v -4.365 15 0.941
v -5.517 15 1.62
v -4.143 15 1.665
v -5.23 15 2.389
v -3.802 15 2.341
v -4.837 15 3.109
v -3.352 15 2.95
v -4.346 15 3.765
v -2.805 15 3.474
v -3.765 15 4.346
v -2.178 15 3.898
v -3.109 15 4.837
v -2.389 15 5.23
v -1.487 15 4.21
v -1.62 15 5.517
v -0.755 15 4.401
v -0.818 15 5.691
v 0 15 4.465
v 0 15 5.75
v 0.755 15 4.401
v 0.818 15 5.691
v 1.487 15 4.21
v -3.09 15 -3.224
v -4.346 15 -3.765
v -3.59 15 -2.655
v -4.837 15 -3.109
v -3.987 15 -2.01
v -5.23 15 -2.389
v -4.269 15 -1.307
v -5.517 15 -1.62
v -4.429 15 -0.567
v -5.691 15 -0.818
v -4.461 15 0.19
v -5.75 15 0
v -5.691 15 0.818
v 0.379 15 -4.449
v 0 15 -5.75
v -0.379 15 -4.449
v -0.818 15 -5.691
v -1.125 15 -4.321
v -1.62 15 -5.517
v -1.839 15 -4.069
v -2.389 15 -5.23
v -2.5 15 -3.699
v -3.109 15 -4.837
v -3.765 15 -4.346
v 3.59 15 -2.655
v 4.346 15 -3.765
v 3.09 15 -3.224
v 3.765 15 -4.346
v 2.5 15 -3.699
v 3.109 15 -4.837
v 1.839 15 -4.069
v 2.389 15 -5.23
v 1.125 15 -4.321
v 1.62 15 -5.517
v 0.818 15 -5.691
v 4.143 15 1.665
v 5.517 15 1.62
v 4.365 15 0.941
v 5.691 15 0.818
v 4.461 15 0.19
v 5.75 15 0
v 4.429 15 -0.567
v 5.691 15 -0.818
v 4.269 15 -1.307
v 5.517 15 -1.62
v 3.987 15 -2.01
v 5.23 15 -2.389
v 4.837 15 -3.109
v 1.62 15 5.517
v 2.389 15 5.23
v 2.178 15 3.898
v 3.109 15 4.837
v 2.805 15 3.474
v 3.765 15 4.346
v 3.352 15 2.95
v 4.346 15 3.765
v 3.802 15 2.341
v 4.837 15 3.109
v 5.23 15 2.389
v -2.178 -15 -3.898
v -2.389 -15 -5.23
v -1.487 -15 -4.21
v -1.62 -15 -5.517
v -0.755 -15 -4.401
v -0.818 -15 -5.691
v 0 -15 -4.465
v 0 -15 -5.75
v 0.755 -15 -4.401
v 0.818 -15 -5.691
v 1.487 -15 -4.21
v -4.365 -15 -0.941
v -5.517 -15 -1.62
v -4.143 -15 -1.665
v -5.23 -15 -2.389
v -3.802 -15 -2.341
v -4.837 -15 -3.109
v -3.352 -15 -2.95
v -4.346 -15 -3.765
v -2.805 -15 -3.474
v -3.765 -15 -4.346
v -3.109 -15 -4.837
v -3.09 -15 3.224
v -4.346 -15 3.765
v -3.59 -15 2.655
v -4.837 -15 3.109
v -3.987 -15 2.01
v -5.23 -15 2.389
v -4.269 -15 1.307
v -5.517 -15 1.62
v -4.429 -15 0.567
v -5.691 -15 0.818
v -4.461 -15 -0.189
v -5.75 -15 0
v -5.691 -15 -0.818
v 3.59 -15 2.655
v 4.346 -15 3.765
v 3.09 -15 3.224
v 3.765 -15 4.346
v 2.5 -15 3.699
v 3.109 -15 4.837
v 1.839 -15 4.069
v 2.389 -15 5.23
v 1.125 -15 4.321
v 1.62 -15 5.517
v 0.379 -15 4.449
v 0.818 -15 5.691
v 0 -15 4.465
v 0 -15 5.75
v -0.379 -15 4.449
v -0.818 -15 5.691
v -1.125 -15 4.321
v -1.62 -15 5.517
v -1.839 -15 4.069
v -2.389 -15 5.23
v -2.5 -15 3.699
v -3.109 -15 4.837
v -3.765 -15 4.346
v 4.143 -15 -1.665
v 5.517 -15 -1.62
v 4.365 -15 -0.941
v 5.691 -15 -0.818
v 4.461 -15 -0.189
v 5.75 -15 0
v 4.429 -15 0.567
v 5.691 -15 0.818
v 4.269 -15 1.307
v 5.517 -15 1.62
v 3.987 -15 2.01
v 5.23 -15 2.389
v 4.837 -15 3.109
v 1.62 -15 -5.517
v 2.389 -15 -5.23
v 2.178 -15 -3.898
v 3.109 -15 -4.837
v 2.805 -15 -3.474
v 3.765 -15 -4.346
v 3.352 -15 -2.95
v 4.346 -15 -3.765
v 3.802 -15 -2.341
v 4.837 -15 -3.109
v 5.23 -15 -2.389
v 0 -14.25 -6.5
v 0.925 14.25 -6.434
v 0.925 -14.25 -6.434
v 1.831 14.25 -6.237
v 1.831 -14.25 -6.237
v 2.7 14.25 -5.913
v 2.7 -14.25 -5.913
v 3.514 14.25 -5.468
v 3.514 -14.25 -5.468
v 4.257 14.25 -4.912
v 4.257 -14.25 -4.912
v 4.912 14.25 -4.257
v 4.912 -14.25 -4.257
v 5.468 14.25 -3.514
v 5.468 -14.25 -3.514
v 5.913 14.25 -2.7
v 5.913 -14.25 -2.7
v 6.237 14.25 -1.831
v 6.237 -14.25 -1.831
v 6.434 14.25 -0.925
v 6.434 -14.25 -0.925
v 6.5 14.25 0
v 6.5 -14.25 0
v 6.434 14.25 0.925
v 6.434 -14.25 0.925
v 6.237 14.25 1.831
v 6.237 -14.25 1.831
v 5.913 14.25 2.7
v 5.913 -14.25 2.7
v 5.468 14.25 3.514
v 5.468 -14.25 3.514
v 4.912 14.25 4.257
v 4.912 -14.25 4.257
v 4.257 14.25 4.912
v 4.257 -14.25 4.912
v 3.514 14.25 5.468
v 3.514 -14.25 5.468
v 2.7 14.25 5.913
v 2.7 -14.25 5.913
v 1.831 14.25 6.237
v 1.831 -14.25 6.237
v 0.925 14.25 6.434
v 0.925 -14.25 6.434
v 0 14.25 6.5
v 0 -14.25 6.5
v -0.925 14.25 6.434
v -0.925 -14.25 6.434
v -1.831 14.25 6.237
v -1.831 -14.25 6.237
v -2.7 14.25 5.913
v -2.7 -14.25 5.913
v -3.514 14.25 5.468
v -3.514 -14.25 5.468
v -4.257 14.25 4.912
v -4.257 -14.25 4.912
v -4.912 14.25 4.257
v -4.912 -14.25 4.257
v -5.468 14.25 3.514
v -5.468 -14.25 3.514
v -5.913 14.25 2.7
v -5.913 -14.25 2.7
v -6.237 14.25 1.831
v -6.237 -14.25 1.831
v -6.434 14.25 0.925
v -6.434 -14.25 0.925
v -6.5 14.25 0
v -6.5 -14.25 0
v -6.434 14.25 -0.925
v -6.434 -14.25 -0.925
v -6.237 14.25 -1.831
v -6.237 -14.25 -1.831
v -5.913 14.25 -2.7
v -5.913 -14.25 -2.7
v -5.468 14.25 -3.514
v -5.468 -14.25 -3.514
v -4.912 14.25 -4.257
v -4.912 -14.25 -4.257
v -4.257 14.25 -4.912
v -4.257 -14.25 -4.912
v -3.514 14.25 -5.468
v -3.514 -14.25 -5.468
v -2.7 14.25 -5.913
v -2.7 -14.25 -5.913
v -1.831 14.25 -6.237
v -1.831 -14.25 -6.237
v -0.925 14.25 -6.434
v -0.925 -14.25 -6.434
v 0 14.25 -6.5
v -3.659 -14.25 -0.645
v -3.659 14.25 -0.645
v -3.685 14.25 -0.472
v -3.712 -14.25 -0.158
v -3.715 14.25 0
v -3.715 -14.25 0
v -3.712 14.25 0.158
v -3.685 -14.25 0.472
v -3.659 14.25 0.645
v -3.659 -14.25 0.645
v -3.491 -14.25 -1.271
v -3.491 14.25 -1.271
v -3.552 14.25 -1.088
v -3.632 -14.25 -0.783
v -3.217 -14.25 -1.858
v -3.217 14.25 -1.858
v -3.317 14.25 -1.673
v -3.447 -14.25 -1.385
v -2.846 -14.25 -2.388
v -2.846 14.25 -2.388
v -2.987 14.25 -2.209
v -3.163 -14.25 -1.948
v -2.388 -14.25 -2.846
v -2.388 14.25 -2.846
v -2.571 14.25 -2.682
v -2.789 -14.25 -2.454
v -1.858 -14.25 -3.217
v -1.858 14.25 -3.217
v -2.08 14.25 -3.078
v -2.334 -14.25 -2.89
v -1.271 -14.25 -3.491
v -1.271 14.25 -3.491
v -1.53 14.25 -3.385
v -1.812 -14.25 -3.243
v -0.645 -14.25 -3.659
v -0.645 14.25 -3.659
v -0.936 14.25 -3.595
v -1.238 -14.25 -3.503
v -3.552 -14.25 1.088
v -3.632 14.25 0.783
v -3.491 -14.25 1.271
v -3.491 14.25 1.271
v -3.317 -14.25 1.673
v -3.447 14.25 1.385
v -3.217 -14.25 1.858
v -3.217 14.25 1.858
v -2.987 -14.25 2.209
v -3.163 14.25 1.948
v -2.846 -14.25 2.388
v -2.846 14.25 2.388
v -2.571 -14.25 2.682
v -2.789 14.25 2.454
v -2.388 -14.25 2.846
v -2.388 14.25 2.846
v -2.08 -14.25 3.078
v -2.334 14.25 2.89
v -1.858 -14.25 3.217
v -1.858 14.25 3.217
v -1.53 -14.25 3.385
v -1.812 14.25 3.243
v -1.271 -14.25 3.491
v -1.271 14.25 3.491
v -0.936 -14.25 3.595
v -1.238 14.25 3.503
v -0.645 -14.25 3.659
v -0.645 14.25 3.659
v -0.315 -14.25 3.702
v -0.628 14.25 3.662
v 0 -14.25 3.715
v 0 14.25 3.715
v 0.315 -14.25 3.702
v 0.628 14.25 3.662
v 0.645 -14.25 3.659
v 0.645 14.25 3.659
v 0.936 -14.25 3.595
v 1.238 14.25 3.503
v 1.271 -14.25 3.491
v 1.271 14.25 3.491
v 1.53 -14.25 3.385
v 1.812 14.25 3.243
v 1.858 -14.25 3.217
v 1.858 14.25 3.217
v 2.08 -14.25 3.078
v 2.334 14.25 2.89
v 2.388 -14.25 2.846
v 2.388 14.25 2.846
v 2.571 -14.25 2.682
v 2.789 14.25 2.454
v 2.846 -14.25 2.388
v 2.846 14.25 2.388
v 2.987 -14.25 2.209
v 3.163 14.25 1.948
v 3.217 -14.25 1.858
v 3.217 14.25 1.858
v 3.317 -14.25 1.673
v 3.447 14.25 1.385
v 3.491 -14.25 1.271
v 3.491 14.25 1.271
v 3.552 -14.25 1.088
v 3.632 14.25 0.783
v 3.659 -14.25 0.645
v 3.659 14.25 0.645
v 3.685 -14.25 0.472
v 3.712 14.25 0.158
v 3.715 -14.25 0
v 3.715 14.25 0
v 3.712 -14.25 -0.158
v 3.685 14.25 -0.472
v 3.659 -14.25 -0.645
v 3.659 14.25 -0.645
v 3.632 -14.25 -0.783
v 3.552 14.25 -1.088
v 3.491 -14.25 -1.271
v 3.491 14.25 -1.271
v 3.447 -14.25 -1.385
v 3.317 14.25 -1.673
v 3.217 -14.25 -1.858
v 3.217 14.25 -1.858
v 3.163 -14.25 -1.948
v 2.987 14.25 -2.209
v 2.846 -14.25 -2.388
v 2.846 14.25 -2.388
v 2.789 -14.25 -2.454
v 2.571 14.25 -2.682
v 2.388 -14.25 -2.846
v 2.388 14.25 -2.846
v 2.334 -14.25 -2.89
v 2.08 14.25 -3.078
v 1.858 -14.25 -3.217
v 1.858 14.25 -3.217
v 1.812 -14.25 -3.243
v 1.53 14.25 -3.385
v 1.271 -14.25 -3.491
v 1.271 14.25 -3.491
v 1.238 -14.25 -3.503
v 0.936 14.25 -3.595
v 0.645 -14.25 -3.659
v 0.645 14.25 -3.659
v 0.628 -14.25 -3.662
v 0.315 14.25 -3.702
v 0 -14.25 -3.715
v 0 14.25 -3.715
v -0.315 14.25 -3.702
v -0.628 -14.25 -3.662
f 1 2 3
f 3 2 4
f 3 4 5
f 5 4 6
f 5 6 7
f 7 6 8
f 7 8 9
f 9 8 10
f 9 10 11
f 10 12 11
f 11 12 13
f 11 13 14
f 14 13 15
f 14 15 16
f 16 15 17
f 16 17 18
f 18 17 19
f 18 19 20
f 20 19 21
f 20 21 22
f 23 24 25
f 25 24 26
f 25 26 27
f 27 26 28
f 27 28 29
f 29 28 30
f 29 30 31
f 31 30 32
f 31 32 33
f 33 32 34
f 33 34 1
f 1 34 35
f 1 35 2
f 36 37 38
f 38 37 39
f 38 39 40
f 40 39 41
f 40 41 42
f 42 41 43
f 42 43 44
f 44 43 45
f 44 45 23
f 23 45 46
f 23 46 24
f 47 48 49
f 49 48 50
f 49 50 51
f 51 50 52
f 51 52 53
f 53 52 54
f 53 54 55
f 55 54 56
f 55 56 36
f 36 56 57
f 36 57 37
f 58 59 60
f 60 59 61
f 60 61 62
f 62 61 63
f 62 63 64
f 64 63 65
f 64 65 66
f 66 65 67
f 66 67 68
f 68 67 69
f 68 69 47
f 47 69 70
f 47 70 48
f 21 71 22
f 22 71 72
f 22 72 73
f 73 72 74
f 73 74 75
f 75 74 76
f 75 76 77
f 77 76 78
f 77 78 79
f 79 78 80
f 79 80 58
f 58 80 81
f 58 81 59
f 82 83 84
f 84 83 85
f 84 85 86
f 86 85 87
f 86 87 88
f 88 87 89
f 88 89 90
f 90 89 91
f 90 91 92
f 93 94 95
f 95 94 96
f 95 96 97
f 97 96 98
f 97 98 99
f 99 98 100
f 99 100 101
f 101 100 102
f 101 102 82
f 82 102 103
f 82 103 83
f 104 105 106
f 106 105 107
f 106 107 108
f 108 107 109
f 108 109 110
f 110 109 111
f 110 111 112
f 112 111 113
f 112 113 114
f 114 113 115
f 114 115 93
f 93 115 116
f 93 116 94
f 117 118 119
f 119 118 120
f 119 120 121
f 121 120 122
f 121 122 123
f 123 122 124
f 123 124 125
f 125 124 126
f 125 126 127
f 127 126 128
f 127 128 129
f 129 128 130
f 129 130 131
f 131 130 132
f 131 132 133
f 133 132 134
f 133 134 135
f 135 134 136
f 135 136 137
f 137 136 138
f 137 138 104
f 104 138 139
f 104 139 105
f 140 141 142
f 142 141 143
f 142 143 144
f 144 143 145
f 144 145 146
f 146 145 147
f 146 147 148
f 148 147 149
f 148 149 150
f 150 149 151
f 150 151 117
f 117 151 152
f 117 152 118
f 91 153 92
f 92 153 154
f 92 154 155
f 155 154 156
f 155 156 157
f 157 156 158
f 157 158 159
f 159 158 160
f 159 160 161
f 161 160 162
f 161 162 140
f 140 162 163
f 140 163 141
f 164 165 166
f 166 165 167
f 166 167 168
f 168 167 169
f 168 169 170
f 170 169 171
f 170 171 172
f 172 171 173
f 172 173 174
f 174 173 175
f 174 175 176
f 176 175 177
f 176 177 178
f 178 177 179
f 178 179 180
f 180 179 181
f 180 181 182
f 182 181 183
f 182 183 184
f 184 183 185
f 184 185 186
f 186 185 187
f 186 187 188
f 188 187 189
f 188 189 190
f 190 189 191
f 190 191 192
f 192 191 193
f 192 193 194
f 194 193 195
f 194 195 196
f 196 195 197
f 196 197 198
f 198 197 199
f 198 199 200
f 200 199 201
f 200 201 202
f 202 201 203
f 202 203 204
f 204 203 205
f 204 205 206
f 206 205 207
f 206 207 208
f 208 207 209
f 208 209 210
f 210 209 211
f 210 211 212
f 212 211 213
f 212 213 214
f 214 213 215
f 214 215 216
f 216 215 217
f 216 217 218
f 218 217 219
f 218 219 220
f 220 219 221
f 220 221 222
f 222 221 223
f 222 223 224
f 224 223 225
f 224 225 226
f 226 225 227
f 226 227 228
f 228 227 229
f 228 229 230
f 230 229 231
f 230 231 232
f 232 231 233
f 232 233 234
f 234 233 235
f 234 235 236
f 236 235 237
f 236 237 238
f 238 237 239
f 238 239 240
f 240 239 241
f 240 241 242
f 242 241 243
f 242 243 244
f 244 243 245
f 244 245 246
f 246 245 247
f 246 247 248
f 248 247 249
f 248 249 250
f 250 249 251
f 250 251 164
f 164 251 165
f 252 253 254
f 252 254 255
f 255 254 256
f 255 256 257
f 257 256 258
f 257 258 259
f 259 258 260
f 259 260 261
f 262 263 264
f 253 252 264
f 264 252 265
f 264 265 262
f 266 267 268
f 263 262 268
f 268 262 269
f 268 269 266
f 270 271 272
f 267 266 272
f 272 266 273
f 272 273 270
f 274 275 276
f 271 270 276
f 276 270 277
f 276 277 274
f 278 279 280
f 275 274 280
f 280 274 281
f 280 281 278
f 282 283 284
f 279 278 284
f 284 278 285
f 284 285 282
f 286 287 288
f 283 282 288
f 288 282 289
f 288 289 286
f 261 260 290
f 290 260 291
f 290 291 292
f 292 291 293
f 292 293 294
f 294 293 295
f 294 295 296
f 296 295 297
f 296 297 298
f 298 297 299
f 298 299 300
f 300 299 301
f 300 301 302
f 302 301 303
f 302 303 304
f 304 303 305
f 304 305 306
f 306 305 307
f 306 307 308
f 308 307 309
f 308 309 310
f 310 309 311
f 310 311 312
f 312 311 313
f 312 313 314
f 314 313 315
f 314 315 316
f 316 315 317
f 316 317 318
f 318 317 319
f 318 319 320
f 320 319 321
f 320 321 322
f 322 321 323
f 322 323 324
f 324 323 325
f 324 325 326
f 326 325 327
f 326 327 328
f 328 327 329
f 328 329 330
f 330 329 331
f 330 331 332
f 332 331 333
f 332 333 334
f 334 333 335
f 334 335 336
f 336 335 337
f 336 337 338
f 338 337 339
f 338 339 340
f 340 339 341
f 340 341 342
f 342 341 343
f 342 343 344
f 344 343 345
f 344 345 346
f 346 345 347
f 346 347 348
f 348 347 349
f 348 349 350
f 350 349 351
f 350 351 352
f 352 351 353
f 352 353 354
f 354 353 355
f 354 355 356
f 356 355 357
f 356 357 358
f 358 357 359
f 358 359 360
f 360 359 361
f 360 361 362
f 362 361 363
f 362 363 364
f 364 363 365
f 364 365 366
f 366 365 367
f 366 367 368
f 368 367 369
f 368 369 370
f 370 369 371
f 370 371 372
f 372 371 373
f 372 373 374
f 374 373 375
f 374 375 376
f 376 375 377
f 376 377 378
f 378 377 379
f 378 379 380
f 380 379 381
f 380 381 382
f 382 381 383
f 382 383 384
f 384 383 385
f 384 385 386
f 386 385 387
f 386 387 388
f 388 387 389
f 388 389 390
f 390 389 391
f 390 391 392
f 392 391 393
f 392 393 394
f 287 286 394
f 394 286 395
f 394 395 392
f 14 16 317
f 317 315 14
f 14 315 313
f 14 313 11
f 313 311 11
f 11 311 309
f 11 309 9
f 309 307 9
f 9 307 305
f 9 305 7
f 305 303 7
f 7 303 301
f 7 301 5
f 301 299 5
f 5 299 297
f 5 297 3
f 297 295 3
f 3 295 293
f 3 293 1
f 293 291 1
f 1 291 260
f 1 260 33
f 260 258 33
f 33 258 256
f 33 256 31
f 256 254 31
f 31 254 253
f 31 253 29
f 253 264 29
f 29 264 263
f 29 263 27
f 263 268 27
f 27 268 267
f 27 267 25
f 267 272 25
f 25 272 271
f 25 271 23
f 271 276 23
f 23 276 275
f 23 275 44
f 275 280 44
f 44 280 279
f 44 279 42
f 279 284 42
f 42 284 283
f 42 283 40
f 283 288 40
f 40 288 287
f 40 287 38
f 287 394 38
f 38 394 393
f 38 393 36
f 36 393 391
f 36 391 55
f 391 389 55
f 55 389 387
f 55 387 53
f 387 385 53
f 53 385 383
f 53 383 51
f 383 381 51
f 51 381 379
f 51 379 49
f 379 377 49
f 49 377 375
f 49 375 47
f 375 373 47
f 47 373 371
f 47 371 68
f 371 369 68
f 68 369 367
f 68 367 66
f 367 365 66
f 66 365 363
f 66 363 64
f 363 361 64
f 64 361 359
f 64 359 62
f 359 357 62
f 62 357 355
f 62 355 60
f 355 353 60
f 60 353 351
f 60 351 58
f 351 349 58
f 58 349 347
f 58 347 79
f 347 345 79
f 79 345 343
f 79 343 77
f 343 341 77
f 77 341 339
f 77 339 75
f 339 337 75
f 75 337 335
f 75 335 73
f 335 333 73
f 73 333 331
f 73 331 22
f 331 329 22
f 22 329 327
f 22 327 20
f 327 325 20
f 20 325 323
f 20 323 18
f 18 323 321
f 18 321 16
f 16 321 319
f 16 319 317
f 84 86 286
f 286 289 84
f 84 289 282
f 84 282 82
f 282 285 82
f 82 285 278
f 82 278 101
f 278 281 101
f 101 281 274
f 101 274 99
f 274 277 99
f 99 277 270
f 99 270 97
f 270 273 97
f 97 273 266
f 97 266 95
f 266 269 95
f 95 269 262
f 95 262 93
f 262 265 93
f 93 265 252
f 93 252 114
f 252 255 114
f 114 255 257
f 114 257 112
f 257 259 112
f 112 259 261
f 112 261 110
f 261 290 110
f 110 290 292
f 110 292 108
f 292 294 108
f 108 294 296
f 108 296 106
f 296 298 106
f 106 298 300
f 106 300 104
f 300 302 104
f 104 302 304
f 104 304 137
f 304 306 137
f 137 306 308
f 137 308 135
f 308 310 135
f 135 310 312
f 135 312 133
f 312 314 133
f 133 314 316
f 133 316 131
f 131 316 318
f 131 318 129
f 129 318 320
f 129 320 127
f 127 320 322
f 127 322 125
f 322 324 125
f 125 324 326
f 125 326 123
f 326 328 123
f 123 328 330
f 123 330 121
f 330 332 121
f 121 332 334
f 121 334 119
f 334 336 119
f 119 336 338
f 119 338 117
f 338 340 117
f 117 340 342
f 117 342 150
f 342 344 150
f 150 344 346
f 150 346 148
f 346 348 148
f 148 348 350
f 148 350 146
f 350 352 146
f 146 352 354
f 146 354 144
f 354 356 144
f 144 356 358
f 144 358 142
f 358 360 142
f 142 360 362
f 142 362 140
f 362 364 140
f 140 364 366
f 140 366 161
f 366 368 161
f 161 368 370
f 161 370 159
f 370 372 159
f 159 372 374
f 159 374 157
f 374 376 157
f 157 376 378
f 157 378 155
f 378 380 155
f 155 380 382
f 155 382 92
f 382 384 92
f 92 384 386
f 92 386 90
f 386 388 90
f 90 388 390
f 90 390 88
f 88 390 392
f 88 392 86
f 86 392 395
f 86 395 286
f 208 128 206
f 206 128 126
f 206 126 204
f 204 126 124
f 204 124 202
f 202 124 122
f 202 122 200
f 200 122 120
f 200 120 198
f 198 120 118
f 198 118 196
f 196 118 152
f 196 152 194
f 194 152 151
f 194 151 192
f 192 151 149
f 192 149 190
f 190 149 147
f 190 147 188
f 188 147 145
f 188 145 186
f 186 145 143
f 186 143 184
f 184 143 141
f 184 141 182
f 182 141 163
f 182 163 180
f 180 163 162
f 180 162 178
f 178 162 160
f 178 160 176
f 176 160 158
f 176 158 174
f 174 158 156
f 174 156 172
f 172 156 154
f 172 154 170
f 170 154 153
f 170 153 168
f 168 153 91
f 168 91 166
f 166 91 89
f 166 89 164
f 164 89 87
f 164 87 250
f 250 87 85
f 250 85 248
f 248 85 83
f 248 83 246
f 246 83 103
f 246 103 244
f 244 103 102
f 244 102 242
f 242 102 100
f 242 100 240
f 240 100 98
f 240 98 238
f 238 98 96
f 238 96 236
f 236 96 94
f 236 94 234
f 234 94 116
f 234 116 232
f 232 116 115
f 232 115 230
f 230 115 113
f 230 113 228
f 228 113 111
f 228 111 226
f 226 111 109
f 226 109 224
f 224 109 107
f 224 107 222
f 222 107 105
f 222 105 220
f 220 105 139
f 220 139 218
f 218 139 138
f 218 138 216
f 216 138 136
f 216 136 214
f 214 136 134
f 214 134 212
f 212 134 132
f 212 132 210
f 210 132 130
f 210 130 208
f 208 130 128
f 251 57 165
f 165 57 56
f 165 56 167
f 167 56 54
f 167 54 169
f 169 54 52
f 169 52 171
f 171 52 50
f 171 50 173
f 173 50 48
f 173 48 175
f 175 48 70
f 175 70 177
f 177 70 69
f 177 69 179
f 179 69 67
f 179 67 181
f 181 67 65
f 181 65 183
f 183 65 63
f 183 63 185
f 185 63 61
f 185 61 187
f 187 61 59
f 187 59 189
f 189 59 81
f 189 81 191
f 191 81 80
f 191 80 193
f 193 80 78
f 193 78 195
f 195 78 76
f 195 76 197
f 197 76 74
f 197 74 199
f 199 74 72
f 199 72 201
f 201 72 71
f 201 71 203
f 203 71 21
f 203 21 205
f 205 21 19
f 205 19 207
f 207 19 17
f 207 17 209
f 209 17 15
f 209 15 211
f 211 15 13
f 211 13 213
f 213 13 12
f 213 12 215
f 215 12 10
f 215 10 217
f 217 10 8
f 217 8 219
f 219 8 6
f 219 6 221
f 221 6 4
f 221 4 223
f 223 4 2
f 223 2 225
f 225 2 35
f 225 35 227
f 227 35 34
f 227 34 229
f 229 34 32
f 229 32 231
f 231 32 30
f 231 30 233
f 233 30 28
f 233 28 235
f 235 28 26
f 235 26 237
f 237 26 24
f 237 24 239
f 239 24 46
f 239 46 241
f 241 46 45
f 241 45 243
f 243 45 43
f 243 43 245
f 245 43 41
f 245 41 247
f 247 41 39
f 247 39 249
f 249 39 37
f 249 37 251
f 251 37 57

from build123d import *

# Parameters (mm, degrees)
CROQUIS1_R              = 6.5
CROQUIS1_R_2            = 3.715
SALIENTE_EXTRUIR1_DEPTH = 15
CHAFL_N1_SIZE           = 0.75


with BuildPart() as part:
    # Croquis1 → Saliente-Extruir1 (new, symmetric)
    with BuildSketch(Plane(origin=(0, 0, 0), x_dir=(1, 0, 0), z_dir=(0, 1, 0))):
        with Locations(Location((0, 0, 0), (0, 0, 270))):
            Circle(CROQUIS1_R)
        with Locations(Location((0, 0, 0), (0, 0, 270))):
            Circle(CROQUIS1_R_2, mode=Mode.SUBTRACT)
    extrude(amount=SALIENTE_EXTRUIR1_DEPTH, both=True)

    # Chaflán1
    chafl_n1_edges = [part.edges().sort_by_distance(p)[0] for p in [
        (0, -15, -6.5),
        (0, 15, -6.5),
        (0, -15, -3.715),
        (0, 15, -3.715),
    ]]
    chamfer(chafl_n1_edges, length=CHAFL_N1_SIZE)


solid = part.part
